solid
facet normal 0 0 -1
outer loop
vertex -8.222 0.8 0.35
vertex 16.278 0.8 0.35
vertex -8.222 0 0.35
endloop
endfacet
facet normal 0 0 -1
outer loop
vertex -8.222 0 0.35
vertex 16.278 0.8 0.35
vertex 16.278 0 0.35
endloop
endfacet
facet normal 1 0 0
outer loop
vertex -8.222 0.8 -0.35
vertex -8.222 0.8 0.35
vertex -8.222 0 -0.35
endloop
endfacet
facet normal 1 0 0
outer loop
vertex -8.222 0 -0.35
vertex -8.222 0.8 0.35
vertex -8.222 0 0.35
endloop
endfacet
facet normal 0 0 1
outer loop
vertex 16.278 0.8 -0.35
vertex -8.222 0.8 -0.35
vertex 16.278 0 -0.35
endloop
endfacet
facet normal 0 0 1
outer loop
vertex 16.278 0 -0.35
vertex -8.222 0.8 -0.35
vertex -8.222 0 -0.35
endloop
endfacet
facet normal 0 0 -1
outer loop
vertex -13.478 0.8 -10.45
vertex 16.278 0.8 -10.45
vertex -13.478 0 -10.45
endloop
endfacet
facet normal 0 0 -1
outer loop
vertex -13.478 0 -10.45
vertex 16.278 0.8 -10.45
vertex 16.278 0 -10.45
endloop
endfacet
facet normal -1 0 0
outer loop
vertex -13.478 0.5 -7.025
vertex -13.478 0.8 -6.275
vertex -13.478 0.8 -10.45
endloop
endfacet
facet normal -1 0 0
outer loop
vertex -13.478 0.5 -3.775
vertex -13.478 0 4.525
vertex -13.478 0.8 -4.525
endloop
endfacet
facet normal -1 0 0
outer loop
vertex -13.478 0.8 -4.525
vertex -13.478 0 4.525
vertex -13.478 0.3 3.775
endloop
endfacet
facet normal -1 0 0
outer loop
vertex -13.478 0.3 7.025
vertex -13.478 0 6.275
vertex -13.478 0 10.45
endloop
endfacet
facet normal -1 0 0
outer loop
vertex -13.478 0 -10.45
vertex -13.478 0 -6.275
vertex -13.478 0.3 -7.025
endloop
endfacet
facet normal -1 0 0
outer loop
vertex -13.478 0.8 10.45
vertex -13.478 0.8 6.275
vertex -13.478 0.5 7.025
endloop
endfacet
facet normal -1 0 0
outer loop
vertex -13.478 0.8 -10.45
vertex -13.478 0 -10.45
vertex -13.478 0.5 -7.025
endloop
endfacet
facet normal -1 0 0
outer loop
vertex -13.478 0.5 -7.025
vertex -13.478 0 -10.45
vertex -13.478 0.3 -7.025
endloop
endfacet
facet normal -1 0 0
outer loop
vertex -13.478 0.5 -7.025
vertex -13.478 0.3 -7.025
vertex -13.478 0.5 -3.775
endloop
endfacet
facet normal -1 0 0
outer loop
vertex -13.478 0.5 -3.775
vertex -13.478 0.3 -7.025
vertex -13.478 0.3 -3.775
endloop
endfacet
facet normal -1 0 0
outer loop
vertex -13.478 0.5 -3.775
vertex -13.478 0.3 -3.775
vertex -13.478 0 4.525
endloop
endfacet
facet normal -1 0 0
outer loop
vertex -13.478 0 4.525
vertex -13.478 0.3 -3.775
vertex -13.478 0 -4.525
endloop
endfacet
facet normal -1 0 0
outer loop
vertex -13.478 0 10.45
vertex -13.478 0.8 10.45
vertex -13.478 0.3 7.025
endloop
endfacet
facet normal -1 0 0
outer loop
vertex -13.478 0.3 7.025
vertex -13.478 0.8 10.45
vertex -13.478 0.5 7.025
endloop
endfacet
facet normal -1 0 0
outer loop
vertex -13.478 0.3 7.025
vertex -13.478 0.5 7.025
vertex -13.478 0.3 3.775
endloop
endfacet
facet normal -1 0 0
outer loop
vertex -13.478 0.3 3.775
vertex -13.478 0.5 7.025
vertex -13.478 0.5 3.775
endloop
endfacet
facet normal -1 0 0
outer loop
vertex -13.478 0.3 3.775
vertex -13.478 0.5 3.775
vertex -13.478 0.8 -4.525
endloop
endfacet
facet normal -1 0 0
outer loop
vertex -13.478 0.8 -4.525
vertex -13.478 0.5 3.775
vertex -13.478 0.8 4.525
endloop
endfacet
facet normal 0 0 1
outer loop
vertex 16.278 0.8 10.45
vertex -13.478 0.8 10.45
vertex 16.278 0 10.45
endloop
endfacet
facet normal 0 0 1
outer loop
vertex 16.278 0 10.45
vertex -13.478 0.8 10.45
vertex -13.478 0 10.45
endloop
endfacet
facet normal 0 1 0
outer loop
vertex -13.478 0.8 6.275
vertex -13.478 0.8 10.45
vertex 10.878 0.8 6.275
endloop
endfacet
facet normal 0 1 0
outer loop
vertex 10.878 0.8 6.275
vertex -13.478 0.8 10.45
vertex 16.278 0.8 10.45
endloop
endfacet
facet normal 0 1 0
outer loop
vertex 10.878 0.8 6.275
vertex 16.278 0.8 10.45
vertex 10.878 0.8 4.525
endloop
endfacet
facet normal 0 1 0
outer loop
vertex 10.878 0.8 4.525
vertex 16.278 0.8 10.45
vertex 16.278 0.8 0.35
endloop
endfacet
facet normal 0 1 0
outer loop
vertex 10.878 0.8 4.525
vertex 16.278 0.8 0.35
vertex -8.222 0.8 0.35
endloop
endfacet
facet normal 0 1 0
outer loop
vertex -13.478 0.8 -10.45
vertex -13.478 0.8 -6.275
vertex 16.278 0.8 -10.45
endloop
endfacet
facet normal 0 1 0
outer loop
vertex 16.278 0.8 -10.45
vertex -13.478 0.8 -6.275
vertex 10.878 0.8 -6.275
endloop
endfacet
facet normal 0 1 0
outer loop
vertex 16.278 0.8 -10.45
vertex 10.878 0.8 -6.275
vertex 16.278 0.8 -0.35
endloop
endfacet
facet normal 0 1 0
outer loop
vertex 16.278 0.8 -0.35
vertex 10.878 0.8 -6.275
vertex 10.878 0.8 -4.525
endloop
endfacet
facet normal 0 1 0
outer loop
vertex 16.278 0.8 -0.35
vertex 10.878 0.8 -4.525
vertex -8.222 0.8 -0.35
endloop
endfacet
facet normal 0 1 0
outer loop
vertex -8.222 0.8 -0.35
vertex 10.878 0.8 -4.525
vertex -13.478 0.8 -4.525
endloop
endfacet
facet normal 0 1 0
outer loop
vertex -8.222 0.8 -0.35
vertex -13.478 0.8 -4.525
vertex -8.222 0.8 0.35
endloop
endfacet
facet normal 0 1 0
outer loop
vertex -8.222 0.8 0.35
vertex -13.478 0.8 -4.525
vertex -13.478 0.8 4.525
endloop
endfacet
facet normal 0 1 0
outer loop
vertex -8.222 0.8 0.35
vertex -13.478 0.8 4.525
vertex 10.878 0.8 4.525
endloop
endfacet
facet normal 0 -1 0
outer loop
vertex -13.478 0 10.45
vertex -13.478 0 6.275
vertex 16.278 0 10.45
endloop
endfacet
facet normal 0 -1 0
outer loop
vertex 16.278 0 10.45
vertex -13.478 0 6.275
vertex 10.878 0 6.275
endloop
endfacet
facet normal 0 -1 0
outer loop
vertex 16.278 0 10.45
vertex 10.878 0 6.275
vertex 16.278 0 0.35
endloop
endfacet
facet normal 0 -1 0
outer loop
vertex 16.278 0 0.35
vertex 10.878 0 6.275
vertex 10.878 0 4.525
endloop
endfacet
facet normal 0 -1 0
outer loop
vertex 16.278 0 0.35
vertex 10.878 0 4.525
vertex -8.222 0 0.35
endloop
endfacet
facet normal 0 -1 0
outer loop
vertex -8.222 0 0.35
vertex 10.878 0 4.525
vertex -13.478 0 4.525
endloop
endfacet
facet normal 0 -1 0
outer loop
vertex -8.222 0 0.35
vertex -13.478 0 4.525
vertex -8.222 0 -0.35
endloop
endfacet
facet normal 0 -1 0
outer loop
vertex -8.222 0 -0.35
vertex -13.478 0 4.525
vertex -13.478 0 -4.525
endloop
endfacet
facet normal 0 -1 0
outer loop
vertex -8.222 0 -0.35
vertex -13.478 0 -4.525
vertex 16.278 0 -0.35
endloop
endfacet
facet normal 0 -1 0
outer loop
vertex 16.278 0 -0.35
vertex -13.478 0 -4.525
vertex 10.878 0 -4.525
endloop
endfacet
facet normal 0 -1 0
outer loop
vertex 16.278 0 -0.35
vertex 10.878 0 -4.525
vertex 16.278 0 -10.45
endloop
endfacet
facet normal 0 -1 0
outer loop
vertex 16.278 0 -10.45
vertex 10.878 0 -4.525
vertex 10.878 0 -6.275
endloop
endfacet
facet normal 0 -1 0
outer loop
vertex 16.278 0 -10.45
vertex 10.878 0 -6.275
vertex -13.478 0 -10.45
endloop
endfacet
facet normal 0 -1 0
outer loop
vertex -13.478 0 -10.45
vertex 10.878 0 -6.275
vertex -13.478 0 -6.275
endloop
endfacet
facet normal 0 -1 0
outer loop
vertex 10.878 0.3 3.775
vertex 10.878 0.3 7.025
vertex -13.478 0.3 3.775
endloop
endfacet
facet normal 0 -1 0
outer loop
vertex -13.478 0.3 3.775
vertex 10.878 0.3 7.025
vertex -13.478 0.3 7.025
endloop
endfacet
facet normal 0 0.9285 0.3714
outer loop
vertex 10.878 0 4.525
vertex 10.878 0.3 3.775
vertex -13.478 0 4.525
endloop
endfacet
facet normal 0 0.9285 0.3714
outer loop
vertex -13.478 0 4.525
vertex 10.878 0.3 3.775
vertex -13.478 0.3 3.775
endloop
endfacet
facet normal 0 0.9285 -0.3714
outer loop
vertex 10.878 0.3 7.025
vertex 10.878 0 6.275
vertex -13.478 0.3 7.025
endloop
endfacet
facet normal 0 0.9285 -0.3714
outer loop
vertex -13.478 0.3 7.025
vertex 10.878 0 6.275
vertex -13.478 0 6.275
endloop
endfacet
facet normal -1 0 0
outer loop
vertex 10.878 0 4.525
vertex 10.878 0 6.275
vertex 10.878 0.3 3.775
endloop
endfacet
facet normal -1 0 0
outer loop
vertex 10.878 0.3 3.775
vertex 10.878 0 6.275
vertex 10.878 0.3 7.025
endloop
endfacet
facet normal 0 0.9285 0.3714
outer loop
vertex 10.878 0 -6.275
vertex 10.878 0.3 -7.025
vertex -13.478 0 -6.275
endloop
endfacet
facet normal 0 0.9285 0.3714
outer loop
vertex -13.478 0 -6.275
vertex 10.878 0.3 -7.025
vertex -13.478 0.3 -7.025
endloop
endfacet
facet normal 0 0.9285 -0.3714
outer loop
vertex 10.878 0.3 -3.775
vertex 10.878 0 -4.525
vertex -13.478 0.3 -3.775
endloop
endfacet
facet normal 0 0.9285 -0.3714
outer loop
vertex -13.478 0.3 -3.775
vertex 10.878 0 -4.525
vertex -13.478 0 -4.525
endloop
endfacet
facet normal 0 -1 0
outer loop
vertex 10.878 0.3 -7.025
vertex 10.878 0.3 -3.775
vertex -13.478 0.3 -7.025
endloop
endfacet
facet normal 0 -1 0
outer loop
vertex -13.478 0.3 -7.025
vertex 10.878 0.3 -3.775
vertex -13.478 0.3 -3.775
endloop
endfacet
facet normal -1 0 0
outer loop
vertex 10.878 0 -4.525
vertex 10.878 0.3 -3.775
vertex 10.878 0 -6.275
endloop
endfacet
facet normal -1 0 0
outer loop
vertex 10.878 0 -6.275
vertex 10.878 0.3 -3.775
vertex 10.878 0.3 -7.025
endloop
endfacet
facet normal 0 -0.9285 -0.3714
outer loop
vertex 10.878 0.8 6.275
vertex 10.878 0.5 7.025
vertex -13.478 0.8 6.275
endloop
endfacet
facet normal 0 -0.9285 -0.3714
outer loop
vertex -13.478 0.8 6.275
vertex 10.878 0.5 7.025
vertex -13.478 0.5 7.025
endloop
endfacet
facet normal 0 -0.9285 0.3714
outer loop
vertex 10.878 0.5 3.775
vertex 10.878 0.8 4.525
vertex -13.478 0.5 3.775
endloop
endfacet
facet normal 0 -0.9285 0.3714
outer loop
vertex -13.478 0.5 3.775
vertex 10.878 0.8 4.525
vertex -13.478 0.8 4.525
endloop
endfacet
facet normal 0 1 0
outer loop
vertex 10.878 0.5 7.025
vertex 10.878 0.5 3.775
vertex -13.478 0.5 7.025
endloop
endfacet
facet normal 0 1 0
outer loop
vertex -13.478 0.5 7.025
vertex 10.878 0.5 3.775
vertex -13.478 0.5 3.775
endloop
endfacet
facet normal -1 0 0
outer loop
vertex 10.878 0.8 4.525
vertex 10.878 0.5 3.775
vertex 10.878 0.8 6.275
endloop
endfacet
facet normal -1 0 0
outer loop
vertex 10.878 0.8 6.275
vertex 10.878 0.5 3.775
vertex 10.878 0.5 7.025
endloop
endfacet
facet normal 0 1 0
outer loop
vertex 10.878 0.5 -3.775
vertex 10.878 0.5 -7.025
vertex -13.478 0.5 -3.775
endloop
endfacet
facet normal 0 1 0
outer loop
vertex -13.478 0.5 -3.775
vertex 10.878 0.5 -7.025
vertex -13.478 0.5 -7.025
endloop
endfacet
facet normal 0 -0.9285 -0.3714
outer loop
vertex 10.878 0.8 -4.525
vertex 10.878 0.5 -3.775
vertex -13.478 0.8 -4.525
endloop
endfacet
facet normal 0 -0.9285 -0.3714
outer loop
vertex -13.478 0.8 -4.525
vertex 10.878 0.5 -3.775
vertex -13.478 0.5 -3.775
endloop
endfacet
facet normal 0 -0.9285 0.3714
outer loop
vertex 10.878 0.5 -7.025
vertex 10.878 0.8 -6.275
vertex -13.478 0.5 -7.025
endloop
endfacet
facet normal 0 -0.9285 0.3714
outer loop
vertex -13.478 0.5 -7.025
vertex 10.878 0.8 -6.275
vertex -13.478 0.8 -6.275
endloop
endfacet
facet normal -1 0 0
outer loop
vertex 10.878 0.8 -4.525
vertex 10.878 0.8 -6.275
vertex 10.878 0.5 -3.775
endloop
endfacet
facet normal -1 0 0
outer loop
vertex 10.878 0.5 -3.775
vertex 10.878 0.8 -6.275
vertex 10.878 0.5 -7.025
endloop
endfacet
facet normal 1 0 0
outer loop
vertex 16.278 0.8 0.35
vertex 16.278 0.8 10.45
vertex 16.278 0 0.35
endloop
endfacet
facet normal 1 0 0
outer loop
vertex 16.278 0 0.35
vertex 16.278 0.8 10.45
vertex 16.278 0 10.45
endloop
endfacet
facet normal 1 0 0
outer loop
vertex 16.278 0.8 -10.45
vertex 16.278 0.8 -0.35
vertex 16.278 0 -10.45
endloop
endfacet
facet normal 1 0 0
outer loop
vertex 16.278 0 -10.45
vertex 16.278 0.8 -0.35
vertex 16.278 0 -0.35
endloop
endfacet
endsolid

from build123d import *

# Parameters (mm, degrees)
BOSS_EXTRUDE1_DEPTH = 0.8
CUT_EXTRUDE1_START  = -2.6
CUT_EXTRUDE1_DEPTH  = 24.5
SKETCH4_W           = 10.1
SKETCH4_H           = 0.8
BOSS_EXTRUDE2_DEPTH = 2.8


with BuildPart() as part:
    # Sketch1 → Boss-Extrude1 (new body)
    with BuildSketch(Plane(origin=(0, 0, 0), x_dir=(1, 0, 0), z_dir=(0, 1, 0))):
        Polygon((13.478240741, 10.45), (-13.478240741, 10.45), (-13.478240741, -10.45), (13.478240741, -10.45), (13.478240741, -0.35), (-8.221759259, -0.35), (-8.221759259, 0.35), (13.478240741, 0.35), align=None)
    extrude(amount=BOSS_EXTRUDE1_DEPTH)

    # Sketch2 → Cut-Extrude1 (cut)
    with BuildSketch(Plane(origin=(13.478240741, 0, 0), x_dir=(0, 0, -1), z_dir=(1, 0, 0)).offset(CUT_EXTRUDE1_START)):
        Polygon((-7.025, 0.5), (-3.775, 0.5), (-4.525, 0.8), (-6.275, 0.8), align=None)
        Polygon((-7.025, 0.3), (-6.275, 0), (-4.525, 0), (-3.775, 0.3), align=None)
        Polygon((7.025, 0.3), (3.775, 0.3), (4.525, 0), (6.275, 0), align=None)
        Polygon((7.025, 0.5), (6.275, 0.8), (4.525, 0.8), (3.775, 0.5), align=None)
    extrude(amount=-CUT_EXTRUDE1_DEPTH, mode=Mode.SUBTRACT)

    # Sketch4 → Boss-Extrude2 (add)
    with BuildSketch(Plane(origin=(13.478240741, 0, 0), x_dir=(0, 0, -1), z_dir=(1, 0, 0))):
        with Locations((-5.4, 0.4)):
            Rectangle(SKETCH4_W, SKETCH4_H)
        with Locations((5.4, 0.4)):
            Rectangle(SKETCH4_W, SKETCH4_H)
    extrude(amount=BOSS_EXTRUDE2_DEPTH)


solid = part.part
